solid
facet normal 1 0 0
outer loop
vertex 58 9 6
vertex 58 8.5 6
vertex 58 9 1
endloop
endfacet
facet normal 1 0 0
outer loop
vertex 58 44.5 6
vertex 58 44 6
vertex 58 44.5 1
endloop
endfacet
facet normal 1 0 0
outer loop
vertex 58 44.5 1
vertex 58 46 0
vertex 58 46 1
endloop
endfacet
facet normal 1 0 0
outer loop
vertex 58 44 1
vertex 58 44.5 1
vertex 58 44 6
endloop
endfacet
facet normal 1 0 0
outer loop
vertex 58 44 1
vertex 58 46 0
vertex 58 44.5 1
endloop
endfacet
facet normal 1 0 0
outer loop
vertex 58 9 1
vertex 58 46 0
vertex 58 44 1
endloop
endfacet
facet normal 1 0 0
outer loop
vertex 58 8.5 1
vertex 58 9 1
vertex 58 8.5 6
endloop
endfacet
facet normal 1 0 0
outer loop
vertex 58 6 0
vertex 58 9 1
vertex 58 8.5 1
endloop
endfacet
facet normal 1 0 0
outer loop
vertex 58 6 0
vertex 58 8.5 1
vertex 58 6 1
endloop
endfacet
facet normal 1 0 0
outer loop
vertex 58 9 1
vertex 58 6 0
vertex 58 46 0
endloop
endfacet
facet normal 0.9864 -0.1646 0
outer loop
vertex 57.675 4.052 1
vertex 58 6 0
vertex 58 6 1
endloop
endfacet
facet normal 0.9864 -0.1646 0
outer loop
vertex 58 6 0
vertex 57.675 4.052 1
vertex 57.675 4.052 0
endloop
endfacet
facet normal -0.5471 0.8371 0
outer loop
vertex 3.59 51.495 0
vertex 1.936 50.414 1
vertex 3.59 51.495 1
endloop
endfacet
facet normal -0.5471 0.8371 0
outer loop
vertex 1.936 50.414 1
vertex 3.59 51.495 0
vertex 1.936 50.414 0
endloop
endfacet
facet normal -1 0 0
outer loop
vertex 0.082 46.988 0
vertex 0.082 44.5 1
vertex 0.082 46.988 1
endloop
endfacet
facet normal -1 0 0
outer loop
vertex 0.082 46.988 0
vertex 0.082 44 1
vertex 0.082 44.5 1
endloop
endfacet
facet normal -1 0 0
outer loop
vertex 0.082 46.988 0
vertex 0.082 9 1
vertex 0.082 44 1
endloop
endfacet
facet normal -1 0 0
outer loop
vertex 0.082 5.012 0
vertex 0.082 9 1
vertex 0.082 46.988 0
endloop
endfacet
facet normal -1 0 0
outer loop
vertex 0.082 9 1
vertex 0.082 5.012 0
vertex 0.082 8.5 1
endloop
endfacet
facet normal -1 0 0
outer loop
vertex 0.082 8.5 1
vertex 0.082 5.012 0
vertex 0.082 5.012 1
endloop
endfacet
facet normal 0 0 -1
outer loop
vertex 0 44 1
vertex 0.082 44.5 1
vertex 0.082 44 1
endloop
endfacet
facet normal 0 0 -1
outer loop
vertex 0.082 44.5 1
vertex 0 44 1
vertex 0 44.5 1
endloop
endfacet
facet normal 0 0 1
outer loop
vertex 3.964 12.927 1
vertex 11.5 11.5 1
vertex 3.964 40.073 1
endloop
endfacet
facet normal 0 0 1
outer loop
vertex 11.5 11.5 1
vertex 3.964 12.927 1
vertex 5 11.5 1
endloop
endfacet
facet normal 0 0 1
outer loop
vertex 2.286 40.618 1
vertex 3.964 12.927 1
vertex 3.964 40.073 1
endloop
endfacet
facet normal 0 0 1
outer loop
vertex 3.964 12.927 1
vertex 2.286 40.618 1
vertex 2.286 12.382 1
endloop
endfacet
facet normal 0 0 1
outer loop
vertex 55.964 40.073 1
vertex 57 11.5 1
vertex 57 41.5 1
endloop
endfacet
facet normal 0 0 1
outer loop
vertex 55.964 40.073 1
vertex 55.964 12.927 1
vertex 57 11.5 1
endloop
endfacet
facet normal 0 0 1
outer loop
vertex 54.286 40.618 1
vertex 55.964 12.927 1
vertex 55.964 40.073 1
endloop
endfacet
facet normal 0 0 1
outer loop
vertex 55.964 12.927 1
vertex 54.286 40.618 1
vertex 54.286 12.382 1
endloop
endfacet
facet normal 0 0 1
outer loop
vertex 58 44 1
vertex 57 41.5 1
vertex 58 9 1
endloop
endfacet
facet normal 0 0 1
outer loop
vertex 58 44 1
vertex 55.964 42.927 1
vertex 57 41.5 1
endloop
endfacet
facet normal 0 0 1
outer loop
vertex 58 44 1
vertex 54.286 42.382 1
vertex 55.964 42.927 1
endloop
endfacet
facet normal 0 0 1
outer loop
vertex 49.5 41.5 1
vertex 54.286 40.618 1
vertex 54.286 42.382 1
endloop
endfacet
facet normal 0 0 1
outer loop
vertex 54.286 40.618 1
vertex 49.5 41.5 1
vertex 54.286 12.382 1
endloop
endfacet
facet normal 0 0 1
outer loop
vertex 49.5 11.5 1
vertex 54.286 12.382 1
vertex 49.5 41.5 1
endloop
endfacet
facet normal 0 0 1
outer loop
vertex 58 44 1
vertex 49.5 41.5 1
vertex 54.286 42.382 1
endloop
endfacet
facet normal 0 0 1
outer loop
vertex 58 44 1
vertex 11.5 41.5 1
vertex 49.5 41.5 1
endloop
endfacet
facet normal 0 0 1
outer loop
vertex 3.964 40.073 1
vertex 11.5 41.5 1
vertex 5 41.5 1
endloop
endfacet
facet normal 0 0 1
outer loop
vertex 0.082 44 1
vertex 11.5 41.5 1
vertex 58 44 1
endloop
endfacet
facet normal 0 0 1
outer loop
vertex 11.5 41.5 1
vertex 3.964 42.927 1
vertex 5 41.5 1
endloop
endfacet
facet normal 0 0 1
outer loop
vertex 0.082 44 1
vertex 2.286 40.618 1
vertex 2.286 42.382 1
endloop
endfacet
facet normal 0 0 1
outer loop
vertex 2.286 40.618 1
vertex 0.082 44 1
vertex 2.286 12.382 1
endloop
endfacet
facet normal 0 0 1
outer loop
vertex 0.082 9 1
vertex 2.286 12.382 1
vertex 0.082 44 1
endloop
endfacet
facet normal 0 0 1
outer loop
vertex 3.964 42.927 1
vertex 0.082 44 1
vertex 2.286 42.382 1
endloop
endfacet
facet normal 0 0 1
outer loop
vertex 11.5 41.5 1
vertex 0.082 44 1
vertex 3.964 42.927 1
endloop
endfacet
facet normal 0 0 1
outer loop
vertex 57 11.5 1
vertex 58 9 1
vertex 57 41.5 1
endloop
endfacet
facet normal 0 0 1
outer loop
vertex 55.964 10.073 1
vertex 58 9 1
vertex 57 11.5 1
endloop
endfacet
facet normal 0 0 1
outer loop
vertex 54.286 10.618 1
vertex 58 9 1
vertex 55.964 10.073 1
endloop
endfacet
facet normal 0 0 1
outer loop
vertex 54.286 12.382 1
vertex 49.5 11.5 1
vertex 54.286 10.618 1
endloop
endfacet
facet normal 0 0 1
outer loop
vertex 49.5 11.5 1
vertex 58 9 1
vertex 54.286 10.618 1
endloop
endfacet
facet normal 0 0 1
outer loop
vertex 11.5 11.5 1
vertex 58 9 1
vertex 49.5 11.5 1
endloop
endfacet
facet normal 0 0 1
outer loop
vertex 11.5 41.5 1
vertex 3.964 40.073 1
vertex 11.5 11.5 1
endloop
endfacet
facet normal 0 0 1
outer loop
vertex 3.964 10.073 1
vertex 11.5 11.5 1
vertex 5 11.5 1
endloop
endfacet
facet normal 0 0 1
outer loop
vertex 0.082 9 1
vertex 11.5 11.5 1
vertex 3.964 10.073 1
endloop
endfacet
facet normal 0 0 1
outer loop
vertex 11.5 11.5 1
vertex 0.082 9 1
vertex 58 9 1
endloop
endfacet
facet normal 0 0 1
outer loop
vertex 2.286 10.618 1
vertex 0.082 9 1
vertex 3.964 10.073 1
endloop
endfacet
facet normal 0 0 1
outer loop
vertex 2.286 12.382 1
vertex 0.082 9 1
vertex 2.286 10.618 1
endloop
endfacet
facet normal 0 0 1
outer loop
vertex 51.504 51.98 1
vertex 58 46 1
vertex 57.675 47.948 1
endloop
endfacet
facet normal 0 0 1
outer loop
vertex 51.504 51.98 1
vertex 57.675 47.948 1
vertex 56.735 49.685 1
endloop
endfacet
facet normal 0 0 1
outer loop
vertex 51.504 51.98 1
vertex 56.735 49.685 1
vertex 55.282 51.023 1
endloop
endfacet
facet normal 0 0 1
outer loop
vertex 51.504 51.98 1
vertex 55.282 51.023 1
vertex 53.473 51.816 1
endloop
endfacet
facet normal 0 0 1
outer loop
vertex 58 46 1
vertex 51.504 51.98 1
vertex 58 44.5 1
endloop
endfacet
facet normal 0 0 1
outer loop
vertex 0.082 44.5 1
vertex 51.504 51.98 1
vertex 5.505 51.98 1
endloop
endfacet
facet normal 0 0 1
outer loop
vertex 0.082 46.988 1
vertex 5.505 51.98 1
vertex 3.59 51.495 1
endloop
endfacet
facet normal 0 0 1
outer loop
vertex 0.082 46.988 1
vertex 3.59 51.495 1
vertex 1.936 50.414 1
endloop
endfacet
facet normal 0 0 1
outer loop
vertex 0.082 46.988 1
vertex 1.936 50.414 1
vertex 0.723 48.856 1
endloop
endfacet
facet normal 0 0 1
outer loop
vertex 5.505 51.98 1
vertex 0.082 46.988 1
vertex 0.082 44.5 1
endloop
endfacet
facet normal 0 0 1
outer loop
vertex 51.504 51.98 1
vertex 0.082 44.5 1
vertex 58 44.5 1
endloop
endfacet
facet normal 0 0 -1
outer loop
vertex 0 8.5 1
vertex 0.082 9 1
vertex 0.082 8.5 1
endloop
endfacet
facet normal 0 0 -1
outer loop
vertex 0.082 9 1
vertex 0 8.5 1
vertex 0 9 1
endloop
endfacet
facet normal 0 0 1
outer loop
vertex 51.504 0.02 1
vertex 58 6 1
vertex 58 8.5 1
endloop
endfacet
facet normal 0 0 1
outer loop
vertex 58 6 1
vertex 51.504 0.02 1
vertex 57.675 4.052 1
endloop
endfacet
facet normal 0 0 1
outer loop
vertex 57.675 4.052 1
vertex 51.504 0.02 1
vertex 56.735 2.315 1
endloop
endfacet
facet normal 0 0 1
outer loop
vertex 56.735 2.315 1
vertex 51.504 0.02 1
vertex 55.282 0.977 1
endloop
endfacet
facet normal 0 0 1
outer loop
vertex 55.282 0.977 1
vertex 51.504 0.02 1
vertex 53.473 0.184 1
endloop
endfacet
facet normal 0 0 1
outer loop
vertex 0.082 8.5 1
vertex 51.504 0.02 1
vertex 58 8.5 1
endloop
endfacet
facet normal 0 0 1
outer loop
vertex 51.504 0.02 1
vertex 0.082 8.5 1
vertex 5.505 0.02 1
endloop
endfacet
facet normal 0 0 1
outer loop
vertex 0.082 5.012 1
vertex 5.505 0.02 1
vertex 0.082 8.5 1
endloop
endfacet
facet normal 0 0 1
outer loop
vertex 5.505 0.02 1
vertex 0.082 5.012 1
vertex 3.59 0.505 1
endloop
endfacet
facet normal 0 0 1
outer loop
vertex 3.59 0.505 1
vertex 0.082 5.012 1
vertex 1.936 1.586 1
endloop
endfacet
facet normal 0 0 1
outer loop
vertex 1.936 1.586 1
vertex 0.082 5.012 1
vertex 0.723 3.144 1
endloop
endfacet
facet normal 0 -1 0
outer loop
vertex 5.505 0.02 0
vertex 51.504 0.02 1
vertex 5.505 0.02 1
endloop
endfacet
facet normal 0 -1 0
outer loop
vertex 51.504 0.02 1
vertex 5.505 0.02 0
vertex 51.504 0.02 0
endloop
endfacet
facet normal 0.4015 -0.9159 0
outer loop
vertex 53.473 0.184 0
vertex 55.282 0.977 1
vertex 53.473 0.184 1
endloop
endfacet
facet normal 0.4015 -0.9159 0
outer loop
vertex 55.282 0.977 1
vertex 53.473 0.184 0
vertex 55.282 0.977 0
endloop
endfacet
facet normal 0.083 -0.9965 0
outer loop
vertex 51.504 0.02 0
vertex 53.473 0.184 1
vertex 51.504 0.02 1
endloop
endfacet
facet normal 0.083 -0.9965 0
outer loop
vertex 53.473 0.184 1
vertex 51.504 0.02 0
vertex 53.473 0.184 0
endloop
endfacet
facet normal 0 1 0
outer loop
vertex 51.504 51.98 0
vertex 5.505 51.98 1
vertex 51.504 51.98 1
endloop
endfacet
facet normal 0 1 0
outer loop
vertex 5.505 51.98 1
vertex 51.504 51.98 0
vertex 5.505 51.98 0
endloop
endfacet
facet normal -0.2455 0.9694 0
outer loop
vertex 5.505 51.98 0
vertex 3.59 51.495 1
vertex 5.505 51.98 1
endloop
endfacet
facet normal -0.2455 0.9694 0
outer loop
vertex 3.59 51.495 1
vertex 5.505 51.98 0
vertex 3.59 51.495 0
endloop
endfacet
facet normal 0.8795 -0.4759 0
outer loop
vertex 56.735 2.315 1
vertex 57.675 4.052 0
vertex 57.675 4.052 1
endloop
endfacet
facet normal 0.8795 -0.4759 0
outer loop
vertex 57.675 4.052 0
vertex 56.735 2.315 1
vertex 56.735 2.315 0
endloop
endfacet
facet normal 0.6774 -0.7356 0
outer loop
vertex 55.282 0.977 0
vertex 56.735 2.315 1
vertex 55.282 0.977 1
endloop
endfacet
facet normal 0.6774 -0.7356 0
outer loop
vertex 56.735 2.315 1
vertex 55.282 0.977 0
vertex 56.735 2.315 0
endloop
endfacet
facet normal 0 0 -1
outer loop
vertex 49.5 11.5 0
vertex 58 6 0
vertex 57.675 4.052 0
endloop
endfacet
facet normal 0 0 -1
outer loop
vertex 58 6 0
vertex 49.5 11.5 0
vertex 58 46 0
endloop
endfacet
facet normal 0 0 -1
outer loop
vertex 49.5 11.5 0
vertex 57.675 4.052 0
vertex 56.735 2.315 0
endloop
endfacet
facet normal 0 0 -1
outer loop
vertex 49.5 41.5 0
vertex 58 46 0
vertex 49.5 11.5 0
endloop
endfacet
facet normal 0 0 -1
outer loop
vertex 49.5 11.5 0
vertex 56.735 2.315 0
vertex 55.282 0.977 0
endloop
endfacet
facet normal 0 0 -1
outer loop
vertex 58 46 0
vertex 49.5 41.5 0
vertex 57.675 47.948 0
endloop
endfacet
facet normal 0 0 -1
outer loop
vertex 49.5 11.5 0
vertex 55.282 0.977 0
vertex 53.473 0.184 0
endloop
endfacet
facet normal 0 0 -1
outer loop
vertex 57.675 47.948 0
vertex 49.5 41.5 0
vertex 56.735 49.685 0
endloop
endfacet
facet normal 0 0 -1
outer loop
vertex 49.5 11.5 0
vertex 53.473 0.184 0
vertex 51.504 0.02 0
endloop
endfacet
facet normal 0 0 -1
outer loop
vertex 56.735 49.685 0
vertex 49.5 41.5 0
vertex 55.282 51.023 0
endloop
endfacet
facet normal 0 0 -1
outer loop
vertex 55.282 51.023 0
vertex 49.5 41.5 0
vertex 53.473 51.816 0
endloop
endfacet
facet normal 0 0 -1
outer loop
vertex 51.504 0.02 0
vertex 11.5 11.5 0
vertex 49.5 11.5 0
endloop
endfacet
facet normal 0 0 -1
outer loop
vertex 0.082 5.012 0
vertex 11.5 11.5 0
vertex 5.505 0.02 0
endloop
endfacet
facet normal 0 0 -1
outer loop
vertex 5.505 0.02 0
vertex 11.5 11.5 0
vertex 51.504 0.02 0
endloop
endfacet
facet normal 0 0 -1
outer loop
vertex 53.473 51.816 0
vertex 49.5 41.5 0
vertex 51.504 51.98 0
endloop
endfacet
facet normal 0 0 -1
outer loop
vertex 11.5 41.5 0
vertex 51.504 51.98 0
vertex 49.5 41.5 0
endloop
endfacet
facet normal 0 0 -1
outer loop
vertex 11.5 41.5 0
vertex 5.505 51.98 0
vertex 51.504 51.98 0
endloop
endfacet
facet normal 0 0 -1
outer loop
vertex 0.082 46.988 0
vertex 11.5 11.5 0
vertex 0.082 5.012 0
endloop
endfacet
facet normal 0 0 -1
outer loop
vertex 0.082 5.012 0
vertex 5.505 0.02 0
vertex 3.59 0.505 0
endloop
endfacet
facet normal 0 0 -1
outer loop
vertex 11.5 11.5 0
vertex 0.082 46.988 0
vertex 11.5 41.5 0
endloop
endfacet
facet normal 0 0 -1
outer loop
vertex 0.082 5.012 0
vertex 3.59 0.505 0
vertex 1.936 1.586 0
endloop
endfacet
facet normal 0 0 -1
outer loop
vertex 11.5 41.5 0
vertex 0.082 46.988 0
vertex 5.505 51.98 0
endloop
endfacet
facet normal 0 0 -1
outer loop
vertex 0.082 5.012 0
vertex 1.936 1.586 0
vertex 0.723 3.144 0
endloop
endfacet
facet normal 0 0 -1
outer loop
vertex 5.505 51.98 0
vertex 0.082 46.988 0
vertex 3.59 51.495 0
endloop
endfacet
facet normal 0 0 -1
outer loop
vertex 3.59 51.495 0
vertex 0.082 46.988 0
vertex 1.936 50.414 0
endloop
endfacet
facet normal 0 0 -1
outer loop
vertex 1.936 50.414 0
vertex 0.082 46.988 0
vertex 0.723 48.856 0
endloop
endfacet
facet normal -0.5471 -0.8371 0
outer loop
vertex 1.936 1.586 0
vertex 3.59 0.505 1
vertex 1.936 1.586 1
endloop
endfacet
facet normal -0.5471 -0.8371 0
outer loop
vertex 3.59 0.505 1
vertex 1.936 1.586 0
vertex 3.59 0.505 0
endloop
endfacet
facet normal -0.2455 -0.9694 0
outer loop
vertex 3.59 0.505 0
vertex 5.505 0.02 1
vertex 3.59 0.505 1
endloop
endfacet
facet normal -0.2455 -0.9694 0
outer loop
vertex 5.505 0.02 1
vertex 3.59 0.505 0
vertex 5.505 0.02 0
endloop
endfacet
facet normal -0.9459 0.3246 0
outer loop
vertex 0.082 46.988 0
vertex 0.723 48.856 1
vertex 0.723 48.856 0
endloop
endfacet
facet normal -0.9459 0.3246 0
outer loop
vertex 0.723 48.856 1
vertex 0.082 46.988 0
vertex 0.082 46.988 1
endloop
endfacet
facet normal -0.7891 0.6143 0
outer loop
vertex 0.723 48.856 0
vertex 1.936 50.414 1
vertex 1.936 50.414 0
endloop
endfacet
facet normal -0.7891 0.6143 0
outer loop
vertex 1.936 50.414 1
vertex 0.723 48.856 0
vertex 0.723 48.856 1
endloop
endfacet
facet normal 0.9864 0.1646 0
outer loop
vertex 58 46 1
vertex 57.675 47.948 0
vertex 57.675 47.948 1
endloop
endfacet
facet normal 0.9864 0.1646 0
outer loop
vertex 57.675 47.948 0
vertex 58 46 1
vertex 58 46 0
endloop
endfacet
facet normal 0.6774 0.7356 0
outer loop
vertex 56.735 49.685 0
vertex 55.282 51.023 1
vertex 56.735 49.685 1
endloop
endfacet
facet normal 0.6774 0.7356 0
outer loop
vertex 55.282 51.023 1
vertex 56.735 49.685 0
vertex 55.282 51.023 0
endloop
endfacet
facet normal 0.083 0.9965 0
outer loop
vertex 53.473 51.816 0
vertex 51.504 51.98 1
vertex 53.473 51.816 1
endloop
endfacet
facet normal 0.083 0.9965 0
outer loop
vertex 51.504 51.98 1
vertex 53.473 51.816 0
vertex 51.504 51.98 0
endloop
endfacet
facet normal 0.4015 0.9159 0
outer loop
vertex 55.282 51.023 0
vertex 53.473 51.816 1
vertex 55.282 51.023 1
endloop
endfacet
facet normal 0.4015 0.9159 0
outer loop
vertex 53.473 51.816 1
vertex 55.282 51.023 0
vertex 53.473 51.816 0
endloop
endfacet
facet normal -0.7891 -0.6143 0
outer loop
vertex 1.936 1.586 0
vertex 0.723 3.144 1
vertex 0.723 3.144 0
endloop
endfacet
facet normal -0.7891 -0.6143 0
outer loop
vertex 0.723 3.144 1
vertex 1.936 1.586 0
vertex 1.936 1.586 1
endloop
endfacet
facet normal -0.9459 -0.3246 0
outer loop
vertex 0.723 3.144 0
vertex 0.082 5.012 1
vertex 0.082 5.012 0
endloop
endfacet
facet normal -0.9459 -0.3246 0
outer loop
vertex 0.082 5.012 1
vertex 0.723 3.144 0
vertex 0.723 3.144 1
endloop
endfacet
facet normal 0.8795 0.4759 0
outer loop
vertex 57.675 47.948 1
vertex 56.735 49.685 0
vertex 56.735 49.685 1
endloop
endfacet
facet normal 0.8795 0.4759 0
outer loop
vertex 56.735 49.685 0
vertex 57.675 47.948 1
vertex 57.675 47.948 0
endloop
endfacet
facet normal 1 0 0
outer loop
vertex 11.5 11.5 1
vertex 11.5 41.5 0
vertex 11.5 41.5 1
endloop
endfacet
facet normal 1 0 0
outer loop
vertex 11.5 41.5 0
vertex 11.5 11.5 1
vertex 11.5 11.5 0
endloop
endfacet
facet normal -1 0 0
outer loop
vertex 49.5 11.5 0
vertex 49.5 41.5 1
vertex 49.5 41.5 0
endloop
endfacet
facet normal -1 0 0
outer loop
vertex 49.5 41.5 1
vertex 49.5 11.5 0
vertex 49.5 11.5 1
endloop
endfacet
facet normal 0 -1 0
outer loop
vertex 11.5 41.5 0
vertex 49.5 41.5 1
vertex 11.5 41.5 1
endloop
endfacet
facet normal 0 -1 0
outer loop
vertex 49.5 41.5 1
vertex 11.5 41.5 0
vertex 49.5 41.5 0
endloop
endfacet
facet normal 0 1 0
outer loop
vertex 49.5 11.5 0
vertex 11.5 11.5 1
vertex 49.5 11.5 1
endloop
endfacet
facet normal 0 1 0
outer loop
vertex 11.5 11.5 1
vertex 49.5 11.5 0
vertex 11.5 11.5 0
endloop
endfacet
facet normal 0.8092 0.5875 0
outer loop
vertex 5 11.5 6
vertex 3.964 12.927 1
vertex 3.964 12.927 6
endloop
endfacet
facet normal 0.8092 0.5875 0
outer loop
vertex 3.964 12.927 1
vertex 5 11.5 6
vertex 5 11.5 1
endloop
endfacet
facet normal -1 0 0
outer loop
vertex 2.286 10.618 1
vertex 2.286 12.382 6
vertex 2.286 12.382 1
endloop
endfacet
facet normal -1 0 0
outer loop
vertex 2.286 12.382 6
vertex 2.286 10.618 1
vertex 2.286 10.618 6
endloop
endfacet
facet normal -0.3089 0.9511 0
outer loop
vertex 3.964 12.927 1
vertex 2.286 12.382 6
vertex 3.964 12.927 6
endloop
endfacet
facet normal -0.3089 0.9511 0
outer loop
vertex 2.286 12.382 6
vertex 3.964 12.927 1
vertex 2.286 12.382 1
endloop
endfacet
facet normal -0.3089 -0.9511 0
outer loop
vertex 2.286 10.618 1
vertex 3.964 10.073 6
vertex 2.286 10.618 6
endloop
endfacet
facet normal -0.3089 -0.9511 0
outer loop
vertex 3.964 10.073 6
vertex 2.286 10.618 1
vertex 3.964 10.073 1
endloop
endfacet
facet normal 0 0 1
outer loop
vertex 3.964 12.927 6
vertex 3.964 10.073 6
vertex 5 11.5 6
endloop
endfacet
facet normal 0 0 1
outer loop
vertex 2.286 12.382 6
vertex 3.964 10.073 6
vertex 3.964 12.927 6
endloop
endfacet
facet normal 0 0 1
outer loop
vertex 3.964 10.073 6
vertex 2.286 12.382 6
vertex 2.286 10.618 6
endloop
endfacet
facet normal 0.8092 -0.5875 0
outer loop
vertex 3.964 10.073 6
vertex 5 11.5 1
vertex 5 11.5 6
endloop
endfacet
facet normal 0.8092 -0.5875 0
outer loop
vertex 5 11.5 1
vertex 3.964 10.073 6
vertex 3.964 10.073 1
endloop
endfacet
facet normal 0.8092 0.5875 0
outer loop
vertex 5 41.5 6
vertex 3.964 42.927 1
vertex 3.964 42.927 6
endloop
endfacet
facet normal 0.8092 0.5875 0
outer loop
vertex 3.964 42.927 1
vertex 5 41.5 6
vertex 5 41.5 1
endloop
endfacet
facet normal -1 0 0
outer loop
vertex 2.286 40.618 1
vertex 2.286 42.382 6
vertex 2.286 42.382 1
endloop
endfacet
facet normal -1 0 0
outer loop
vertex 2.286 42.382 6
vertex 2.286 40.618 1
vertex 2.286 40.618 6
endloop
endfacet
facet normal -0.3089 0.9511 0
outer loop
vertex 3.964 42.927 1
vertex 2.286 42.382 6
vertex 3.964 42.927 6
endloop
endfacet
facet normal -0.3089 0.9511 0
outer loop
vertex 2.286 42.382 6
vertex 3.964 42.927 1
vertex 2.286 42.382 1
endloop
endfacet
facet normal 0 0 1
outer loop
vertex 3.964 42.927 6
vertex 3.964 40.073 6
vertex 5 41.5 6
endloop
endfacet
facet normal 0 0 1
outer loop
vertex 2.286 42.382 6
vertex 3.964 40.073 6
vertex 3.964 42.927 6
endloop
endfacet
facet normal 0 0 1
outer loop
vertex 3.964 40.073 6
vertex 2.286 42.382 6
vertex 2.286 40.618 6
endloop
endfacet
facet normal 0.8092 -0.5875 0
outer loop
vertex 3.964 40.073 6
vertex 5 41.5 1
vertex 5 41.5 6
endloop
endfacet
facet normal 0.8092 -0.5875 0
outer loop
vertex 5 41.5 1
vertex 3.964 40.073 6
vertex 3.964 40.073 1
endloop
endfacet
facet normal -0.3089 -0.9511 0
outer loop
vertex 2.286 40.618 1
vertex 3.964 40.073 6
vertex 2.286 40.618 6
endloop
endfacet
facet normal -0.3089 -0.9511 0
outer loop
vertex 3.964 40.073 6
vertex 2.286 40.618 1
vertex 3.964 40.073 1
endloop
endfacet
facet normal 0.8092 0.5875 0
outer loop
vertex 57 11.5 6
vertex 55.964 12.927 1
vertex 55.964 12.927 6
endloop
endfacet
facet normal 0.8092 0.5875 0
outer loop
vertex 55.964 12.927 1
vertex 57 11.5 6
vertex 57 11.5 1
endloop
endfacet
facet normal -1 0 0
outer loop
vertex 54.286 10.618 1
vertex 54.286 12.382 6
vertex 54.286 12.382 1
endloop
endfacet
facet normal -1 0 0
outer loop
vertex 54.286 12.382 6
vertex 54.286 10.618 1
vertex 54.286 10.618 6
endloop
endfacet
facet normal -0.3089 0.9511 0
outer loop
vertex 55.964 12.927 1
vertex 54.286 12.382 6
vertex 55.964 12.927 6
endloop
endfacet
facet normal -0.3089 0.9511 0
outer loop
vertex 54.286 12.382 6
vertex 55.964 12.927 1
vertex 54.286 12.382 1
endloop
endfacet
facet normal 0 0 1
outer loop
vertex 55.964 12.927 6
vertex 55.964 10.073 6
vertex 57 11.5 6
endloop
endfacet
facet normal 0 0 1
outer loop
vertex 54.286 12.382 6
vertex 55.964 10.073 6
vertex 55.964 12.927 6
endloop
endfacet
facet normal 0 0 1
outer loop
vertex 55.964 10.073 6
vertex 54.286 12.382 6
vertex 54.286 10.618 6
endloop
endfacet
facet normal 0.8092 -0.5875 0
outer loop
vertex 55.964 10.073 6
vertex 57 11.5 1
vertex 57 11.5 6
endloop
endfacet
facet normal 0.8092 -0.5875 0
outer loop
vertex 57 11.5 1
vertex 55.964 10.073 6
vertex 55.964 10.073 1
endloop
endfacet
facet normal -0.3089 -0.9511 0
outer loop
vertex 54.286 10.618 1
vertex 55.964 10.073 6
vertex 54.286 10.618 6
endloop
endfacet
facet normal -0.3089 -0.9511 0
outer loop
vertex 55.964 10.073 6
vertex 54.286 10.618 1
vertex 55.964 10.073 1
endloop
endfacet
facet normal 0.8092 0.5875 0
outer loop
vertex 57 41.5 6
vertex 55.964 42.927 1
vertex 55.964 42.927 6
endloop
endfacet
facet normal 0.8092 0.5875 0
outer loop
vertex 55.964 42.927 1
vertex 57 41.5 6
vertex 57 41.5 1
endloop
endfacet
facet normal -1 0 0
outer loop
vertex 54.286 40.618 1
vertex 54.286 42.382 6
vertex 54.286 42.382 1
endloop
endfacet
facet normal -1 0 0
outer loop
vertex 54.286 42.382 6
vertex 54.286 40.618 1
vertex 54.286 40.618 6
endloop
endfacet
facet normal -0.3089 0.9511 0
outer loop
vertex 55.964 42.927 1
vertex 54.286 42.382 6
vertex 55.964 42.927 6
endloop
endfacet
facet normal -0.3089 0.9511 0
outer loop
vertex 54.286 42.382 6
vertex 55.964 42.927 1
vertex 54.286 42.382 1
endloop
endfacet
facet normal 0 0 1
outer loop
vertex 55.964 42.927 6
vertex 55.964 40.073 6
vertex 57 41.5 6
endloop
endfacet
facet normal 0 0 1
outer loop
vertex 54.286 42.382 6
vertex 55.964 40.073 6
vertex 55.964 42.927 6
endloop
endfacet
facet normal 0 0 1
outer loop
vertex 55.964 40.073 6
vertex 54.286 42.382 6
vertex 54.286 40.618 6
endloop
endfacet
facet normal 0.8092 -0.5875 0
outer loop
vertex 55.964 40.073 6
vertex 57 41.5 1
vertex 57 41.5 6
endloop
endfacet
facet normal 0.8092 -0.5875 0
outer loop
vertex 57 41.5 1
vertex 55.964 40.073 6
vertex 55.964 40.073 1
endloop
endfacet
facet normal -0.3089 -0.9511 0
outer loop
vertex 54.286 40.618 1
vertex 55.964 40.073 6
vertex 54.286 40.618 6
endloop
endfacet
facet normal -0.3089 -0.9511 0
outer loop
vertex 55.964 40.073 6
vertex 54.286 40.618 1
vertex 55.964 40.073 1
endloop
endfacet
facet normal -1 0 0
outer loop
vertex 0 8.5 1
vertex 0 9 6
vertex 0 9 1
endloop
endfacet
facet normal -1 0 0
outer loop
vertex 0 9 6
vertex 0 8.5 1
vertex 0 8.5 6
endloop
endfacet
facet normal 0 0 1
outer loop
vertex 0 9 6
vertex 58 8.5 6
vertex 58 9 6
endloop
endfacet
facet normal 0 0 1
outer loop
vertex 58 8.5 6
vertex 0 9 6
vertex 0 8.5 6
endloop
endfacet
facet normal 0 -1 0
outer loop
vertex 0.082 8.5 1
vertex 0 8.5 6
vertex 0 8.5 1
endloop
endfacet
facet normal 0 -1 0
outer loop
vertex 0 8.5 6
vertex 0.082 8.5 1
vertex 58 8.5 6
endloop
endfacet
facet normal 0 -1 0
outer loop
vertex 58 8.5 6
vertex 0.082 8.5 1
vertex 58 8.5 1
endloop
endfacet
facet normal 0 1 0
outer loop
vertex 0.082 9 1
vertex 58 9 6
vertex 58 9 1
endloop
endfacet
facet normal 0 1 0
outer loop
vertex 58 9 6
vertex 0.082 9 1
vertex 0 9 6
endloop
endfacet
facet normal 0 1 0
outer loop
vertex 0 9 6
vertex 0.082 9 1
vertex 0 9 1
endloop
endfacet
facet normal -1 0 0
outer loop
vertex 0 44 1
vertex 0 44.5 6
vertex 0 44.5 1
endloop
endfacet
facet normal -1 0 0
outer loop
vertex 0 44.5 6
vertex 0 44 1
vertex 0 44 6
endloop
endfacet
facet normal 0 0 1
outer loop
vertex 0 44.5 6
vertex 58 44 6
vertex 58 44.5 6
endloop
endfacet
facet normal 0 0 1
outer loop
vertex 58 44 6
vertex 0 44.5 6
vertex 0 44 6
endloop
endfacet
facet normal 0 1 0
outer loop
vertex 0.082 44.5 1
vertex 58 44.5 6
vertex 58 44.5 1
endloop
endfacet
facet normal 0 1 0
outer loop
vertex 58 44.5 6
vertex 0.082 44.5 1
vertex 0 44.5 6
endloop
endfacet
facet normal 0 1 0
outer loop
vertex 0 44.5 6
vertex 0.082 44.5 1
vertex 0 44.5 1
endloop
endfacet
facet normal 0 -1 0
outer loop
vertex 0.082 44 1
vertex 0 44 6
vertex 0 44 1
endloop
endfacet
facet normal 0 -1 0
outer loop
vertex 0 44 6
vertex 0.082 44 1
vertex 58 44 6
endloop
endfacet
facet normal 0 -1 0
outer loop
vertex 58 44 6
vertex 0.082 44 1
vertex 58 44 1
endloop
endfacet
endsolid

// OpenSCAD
union(){
    difference(){
        //outside box
        translate([6,6,0]){
            minkowski(){
                cube([46,40,0.5]);
                cylinder(r=6,h=0.5);
            }
        }
        //display cutout
        translate([11.5,11.5,0]){
            cube([38,30,3]);
        }       
    }
    //mounting posts
    translate([3.5,11.5,1]){
        cylinder(r=1.5,h=5);
    }
    translate([3.5,41.5,1]){
        cylinder(r=1.5,h=5);
    }
    translate([55.5,11.5,1]){
        cylinder(r=1.5,h=5);
    }
    translate([55.5,41.5,1]){
        cylinder(r=1.5,h=5);
    }
    //side walls
    translate([0,8.5,1]){
        cube([58,0.5,5]);
    }
    translate([0,44,1]){
        cube([58,0.5,5]);
    }
}
       
